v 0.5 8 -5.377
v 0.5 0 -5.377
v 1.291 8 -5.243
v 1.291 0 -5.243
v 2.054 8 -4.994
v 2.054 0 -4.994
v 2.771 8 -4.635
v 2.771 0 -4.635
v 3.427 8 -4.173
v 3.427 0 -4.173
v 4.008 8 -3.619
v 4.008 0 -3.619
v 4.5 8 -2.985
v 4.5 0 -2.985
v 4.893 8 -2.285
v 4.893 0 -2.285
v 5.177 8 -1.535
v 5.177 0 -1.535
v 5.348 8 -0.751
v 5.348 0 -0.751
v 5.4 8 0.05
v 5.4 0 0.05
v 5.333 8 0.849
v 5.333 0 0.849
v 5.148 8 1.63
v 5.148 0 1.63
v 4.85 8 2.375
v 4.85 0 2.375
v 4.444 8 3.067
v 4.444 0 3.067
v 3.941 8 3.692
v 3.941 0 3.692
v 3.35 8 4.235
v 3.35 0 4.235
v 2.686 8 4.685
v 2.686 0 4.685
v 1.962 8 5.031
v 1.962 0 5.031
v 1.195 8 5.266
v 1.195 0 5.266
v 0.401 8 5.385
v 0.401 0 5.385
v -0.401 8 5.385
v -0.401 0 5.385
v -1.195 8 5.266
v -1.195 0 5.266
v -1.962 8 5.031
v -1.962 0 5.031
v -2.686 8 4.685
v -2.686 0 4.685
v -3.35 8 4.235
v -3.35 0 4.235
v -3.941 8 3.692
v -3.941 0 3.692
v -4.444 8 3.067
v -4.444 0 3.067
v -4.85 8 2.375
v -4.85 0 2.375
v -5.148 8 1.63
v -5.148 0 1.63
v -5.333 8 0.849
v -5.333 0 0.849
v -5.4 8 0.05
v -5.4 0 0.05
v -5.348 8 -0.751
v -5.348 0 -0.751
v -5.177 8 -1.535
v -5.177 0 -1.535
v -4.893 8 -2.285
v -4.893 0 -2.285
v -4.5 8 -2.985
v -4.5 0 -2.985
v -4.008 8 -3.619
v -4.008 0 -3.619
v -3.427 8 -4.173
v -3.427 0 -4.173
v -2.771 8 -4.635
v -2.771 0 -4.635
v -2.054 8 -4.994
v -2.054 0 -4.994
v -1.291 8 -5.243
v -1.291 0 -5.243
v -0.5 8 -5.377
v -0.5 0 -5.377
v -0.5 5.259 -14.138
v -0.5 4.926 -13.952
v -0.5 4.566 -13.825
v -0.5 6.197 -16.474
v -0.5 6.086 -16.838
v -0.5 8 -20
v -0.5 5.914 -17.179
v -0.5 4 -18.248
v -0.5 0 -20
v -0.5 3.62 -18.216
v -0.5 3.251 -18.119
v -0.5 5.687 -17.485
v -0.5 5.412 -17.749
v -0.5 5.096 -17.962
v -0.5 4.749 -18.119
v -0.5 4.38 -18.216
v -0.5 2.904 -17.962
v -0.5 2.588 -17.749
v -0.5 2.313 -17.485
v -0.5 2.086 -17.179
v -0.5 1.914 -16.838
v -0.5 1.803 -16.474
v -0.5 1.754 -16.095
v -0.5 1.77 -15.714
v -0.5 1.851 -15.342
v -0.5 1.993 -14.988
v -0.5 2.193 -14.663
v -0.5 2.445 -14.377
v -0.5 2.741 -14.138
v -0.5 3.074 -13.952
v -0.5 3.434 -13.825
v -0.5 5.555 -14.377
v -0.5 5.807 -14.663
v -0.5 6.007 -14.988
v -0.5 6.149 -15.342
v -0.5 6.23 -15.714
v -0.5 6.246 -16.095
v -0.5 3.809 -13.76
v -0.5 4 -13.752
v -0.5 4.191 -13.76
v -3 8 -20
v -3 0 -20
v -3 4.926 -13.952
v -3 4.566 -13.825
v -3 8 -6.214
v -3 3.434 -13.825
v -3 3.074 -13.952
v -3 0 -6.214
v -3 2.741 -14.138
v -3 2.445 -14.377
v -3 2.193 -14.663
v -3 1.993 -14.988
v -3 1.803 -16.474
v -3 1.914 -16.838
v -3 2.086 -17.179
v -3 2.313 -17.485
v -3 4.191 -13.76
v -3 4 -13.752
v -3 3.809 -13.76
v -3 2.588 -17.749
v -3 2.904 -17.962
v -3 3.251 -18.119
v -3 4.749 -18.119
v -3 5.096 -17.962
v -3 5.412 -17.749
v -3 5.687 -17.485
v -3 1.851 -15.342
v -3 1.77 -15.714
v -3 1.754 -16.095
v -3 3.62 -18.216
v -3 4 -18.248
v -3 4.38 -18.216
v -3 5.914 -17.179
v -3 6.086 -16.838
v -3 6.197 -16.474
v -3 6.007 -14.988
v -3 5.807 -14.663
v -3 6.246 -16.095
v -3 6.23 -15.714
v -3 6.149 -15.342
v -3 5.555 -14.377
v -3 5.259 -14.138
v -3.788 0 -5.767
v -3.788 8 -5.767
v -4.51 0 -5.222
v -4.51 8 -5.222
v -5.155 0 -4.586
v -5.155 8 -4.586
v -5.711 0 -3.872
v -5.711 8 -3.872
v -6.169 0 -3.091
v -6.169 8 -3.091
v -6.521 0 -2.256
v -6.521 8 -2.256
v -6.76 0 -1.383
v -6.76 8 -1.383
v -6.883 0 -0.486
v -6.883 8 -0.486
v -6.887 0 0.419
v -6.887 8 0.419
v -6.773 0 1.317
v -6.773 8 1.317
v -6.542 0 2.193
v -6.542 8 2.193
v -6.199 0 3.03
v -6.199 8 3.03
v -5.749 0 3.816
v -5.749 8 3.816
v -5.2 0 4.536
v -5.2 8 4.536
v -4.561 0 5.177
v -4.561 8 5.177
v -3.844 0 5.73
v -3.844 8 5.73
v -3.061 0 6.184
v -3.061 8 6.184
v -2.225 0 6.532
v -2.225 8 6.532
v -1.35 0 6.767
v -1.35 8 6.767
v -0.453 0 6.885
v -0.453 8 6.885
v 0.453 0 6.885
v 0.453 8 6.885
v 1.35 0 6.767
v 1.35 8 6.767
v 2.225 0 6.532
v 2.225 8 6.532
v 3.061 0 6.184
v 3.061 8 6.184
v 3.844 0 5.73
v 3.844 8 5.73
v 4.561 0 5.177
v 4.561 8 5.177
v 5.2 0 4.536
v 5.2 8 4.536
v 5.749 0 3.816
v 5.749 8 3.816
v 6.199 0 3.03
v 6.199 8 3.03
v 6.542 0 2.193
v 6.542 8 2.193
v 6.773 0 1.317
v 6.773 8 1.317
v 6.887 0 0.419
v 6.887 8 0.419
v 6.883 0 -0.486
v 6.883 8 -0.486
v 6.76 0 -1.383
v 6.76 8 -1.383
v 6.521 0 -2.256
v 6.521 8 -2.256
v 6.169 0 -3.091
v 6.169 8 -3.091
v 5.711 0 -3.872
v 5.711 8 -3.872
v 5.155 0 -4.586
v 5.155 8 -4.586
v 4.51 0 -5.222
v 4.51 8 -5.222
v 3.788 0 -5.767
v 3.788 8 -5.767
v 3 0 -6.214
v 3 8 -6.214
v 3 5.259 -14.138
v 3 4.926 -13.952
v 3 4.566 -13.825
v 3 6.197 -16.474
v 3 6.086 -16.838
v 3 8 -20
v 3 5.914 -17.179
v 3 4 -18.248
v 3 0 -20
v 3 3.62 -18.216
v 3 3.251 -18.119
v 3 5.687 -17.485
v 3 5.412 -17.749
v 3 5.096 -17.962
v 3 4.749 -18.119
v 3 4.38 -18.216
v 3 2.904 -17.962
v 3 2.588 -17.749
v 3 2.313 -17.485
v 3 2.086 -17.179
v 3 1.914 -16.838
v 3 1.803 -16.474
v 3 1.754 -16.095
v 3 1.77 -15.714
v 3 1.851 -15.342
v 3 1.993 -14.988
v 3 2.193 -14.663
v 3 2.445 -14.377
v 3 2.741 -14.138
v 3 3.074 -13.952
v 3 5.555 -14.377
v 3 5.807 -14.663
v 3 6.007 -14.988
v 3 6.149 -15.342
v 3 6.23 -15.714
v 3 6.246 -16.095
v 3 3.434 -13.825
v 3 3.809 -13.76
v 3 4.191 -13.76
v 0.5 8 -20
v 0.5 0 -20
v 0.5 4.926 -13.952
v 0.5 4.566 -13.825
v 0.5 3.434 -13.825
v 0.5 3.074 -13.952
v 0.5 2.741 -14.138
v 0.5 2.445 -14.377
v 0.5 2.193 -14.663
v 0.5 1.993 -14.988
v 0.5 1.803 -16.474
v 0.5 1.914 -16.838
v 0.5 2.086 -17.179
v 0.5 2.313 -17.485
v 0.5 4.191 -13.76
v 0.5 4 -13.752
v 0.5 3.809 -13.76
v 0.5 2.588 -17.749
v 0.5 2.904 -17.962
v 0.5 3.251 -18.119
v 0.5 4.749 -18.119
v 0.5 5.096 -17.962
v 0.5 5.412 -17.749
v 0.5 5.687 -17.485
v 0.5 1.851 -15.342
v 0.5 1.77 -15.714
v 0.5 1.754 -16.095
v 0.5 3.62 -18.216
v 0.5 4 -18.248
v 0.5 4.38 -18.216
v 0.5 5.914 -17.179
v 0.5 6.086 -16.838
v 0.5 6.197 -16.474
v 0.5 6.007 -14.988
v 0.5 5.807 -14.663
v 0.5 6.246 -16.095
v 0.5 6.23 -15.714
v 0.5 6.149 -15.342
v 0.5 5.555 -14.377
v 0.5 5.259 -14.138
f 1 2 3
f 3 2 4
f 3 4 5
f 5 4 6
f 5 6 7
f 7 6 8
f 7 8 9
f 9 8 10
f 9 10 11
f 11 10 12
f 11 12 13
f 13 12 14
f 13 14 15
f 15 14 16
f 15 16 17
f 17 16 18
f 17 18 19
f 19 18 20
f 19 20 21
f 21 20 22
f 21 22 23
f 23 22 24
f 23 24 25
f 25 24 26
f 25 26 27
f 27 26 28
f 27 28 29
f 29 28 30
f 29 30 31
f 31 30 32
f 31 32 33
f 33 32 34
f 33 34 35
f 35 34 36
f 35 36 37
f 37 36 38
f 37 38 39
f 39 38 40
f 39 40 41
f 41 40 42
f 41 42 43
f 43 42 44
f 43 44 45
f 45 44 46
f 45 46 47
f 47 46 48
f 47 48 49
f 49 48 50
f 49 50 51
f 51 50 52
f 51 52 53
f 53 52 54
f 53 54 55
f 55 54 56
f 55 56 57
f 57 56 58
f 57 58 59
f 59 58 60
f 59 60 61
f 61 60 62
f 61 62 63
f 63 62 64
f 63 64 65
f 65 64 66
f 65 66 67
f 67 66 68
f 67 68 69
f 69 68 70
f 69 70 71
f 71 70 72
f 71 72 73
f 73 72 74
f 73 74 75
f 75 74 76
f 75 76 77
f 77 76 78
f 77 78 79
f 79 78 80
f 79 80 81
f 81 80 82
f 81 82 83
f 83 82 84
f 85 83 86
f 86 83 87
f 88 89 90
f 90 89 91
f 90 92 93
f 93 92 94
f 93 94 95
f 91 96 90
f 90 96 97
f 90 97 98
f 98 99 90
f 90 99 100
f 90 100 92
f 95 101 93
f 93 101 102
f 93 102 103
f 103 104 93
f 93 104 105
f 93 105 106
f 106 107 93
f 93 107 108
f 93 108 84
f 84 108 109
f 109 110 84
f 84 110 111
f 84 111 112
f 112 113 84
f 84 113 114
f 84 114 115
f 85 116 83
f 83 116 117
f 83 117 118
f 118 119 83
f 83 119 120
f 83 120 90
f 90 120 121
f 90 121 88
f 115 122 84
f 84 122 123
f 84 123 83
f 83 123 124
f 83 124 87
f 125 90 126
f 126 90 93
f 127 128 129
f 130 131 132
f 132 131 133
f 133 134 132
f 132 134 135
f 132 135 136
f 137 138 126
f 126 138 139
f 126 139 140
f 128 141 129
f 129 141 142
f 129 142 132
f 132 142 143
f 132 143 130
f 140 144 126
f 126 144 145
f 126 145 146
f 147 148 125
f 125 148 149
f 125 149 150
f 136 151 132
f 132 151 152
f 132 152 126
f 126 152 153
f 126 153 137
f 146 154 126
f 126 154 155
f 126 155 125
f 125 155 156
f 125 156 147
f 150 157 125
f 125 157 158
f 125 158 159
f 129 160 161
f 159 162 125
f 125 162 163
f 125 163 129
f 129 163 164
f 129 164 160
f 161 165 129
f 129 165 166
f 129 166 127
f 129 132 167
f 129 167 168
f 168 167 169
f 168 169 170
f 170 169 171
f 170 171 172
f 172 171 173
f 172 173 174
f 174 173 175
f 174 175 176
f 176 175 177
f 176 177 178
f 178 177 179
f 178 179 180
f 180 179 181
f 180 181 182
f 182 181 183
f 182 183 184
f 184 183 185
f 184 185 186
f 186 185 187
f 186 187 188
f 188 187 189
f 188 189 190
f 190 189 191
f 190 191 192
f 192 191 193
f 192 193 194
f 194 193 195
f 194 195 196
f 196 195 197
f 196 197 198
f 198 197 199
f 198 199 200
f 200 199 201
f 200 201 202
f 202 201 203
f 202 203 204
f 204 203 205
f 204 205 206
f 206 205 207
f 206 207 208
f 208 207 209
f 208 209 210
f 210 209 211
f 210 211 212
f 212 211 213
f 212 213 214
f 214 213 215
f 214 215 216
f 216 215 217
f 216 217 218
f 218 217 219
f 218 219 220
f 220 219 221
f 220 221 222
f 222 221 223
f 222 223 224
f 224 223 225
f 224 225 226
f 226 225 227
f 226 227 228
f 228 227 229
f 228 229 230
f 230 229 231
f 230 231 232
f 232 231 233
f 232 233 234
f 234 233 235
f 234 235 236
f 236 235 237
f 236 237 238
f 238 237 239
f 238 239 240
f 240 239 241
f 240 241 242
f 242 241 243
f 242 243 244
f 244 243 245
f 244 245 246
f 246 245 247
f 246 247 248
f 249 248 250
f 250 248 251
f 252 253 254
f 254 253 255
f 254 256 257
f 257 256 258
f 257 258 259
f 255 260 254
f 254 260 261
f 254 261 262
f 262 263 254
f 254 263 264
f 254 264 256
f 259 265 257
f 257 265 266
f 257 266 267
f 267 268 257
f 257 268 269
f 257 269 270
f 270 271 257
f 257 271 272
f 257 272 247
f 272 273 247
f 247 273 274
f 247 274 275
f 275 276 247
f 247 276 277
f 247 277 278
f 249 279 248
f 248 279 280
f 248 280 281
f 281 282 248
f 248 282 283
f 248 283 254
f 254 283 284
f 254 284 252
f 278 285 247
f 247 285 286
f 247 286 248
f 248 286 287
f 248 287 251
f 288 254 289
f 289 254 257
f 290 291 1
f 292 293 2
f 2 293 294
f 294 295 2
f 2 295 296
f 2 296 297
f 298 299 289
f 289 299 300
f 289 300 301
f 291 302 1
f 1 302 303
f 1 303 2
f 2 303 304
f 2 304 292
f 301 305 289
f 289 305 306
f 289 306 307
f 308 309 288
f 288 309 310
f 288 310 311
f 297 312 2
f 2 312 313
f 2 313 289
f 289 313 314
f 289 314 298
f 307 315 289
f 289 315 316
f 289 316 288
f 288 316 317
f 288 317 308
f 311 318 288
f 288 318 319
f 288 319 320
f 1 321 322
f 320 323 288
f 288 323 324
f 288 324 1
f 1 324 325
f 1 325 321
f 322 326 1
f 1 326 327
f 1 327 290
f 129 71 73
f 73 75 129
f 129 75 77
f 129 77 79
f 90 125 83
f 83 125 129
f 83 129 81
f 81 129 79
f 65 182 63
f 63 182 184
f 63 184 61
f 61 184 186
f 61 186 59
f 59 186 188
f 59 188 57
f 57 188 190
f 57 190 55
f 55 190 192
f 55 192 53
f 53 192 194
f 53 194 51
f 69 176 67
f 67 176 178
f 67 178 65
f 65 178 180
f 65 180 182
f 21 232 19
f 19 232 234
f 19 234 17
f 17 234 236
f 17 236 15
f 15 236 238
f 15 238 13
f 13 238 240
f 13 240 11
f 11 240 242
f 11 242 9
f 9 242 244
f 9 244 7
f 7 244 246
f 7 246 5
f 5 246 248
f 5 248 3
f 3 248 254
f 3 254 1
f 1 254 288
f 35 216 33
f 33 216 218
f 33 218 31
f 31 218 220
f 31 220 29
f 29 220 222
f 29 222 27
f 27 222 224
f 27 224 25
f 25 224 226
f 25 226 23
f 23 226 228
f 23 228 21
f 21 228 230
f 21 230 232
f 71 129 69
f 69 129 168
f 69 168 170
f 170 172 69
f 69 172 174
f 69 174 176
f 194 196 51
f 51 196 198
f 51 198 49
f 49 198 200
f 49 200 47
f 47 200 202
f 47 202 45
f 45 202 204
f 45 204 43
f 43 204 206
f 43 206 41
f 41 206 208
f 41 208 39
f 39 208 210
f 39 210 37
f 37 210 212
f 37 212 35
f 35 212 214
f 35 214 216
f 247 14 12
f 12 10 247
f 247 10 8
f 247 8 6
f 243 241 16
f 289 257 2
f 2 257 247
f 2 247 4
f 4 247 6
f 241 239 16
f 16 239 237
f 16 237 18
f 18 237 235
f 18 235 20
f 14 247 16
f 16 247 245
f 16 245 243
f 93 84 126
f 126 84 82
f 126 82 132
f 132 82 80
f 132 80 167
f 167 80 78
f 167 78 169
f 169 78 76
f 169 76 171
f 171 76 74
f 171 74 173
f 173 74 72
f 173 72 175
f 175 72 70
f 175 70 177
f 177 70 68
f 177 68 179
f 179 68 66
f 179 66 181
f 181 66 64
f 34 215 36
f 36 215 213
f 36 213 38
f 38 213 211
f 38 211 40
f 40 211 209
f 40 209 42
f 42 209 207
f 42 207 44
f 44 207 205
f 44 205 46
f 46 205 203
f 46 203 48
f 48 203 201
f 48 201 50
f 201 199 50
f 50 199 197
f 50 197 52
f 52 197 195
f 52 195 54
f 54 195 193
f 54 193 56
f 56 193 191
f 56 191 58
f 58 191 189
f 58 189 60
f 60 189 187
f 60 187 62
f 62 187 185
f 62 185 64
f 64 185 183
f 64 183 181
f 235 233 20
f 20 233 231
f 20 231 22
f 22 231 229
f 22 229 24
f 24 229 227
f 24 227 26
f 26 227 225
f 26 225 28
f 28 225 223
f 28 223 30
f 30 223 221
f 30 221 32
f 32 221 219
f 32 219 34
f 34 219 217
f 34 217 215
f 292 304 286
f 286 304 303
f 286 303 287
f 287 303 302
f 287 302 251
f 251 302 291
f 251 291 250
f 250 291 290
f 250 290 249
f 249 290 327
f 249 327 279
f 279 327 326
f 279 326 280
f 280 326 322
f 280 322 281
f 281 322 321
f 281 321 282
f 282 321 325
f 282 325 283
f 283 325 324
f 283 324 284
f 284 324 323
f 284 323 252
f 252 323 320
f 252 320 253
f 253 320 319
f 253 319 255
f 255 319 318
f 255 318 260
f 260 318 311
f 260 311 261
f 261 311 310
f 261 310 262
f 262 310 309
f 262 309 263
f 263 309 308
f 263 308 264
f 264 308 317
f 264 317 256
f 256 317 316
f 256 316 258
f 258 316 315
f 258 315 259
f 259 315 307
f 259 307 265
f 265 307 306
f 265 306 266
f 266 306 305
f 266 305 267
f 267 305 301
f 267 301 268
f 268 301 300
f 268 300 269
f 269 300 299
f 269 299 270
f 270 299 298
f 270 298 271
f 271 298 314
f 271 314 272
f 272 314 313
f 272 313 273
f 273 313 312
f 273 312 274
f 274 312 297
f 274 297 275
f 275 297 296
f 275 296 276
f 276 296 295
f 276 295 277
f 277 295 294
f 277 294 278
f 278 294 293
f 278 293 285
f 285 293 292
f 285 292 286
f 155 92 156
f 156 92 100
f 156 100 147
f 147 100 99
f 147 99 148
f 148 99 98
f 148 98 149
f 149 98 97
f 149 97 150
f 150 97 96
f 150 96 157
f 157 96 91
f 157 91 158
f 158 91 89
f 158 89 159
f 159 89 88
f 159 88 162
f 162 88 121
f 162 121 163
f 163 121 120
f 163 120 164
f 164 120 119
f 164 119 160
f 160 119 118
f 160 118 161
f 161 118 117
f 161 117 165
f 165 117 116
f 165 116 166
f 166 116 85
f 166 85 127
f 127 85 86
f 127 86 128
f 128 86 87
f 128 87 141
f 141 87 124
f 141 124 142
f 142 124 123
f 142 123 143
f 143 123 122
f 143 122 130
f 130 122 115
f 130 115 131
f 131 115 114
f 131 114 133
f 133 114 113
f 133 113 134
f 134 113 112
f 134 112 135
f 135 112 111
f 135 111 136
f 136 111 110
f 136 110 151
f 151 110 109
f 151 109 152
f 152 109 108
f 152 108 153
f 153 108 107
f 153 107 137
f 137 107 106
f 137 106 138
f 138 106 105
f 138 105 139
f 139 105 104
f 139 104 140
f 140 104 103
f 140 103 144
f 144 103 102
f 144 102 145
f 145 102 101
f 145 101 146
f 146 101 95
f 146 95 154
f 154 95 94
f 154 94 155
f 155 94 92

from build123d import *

# Parameters (mm, degrees)
BOSS_EXTRUDE1_DEPTH   = 8
F_8_CLEARANCE_HOLE1_D = 4.4958


with BuildPart() as part:
    # Sketch1 → Boss-Extrude1 (new body)
    with BuildSketch(Plane(origin=(0, 0, 0), x_dir=(1, 0, 0), z_dir=(0, 1, 0))):
        with BuildLine():
            Line((3, 6.213694553), (3, 20))
            Line((3, 20), (0.5, 20))
            Line((0.5, 20), (0.5, 5.376802024))
            ThreePointArc((0.5, 5.376802024), (0, -5.4), (-0.5, 5.376802024))
            Line((-0.5, 5.376802024), (-0.5, 20))
            Line((-0.5, 20), (-3, 20))
            Line((-3, 20), (-3, 6.213694553))
            ThreePointArc((-3, 6.213694553), (0, -6.9), (3, 6.213694553))
        make_face()
    extrude(amount=BOSS_EXTRUDE1_DEPTH)

    # #8 Clearance Hole1 (through all)
    with Locations(Plane(origin=(3, 0, 0), x_dir=(0, 0, -1), z_dir=(1, 0, 0))):
        with Locations((16, 4)):
            Hole(F_8_CLEARANCE_HOLE1_D / 2)


solid = part.part
